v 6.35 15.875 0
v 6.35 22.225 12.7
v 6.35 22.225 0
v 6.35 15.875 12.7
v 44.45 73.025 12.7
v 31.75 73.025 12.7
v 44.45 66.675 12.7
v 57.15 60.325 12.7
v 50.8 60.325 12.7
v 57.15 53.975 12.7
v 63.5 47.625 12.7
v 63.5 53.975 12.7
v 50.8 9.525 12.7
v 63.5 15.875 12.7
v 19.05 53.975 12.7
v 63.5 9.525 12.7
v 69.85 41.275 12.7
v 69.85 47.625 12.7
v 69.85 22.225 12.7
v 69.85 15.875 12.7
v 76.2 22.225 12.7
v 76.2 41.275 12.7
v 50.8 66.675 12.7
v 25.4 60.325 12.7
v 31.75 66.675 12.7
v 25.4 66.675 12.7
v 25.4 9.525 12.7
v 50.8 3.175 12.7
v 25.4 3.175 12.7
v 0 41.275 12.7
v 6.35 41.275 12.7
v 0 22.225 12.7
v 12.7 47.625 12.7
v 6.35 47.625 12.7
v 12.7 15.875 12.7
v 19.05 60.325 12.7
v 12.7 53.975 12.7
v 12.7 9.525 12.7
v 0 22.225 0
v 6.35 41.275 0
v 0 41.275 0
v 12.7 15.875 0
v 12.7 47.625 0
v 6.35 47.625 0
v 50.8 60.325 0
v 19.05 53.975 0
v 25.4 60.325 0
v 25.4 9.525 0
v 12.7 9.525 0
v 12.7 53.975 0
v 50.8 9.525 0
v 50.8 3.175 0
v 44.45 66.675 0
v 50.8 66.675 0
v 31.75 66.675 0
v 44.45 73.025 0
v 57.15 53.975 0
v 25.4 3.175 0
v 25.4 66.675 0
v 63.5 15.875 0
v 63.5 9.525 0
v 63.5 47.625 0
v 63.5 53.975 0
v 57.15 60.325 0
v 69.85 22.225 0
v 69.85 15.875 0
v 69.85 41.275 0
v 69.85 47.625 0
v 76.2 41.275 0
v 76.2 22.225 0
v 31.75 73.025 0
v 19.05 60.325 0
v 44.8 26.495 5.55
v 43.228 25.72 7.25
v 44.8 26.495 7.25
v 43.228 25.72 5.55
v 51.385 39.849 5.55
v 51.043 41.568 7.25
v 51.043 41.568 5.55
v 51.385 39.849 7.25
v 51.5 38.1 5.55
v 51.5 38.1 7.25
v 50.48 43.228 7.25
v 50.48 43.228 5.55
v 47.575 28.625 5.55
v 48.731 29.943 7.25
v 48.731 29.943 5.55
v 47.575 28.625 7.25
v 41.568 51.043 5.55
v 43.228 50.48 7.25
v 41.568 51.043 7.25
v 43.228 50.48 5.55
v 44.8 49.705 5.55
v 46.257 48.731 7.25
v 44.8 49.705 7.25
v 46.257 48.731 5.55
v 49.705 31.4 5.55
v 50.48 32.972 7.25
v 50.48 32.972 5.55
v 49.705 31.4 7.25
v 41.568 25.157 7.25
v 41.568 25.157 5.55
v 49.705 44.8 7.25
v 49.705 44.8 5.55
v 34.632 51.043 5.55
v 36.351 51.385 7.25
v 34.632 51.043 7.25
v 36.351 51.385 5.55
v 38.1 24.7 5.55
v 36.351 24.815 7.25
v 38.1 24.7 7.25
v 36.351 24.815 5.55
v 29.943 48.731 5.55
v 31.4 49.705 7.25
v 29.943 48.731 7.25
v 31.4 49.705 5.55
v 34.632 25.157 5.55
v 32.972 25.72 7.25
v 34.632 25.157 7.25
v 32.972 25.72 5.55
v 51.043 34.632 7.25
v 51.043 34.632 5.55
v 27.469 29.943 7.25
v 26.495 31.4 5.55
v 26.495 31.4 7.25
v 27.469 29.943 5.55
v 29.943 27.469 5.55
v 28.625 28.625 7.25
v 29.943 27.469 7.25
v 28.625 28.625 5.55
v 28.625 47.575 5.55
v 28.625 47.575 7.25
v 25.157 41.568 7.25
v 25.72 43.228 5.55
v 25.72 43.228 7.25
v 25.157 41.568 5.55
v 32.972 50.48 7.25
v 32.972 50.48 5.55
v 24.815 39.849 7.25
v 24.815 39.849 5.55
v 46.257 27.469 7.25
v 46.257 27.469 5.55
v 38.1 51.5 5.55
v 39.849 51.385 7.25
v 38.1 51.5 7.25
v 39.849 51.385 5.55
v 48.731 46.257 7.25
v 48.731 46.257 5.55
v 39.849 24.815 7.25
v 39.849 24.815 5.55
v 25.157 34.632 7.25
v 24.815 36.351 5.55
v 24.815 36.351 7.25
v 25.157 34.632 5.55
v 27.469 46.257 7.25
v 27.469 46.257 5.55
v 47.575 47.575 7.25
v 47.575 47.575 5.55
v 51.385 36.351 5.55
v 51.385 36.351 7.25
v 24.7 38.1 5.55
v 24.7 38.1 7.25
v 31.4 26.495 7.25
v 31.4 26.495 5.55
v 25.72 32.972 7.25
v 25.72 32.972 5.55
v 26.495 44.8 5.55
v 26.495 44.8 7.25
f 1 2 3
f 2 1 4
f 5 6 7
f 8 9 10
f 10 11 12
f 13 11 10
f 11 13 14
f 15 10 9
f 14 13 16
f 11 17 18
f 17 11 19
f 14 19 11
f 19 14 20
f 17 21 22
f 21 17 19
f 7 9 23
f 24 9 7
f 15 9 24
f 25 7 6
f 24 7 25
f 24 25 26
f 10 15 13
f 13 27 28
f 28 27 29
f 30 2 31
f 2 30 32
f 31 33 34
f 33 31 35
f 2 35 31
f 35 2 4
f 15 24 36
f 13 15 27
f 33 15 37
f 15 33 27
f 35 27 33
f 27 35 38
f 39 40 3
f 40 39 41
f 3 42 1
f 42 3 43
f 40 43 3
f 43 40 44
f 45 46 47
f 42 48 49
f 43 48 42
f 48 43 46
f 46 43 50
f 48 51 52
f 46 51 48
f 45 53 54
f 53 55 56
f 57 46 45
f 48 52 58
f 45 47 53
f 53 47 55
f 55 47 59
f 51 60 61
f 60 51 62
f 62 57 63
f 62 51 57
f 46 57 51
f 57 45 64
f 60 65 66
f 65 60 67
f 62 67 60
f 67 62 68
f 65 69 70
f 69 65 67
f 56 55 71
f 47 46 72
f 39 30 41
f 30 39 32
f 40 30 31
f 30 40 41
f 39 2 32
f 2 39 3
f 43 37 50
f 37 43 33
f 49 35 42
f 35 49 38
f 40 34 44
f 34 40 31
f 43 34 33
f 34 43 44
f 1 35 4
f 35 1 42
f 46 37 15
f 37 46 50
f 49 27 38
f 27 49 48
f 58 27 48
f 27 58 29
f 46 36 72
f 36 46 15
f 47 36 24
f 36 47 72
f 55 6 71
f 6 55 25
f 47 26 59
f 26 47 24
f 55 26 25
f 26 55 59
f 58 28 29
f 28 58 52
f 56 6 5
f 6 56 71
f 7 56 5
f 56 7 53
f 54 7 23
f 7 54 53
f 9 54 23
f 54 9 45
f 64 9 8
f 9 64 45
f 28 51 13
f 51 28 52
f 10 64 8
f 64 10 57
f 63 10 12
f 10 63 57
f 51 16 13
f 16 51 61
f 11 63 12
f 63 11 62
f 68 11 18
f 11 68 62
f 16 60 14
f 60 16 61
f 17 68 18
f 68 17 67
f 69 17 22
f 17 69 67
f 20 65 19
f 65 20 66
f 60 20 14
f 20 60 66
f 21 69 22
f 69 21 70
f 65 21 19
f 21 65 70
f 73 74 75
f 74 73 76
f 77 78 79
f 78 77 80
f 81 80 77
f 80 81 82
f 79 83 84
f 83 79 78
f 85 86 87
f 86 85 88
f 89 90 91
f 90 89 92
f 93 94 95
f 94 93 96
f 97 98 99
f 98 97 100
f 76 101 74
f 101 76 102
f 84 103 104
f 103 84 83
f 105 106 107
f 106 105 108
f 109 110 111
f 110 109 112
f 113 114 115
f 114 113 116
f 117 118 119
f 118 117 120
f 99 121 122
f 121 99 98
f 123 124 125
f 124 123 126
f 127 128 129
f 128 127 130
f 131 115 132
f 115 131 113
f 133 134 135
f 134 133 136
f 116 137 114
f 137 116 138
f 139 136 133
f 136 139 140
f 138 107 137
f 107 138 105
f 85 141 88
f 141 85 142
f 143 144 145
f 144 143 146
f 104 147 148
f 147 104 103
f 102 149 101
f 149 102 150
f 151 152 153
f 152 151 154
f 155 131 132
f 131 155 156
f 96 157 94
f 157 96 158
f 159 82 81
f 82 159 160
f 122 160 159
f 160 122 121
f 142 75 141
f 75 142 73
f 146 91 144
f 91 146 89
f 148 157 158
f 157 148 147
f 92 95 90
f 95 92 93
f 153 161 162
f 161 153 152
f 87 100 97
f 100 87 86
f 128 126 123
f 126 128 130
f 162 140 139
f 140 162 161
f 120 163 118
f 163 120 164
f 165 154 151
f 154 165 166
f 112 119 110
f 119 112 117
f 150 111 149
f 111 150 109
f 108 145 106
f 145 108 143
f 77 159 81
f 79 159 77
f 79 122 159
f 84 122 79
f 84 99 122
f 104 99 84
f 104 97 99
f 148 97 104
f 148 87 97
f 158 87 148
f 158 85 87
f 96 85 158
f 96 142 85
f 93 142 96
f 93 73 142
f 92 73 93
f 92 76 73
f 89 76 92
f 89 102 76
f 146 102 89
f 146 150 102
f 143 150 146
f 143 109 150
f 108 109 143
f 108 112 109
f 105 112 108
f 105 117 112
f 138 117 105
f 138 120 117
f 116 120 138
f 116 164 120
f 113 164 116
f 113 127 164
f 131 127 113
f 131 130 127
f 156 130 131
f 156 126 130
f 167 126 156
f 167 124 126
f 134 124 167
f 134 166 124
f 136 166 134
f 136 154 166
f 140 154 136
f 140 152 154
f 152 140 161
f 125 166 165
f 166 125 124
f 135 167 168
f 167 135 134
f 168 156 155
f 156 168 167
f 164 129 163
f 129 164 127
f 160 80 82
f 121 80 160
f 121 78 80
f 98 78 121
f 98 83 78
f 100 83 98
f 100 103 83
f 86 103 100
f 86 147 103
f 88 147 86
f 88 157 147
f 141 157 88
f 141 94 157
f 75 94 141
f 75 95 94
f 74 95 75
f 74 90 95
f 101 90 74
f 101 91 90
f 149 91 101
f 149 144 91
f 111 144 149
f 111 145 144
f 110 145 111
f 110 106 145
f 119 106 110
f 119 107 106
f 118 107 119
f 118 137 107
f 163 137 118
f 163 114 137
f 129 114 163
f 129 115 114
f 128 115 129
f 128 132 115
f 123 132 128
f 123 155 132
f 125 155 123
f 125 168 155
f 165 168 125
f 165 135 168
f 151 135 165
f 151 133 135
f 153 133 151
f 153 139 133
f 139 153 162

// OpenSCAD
// redstone — Minecraft Item Shape 3D Model
// Auto-generated from minecraft/textures/item/redstone.png
//
// Open in OpenSCAD → F5 preview → F6 render → F7 export STL

// ============================================================
// PARAMETERS
// ============================================================

GRID_SIZE_IN    = 3.0;           // crafting table slot size
PIXELS          = 12;              // grid divisions (shape-fitted)
PIXEL_MM        = (GRID_SIZE_IN * 25.4) / PIXELS;  // mm per pixel

DEPTH_IN        = 0.5;          // extrusion depth in inches
DEPTH_MM        = DEPTH_IN * 25.4;

// NFC tag (NTAG215 25mm coin)
TAG_DIAMETER    = 26;           // mm — slightly oversized for easy drop-in
TAG_THICKNESS   = 1.2;         // mm
TAG_CLEARANCE   = 0.4;         // mm extra around tag

cavity_d = TAG_DIAMETER + TAG_CLEARANCE * 2;
cavity_h = TAG_THICKNESS + TAG_CLEARANCE;

echo(str("Tag cavity: ", cavity_d, "mm dia × ", cavity_h, "mm deep"));
echo(str("PAUSE AT: ", DEPTH_MM / 2 + cavity_h / 2, "mm to insert tag"));

module tag_cavity() {
    cx = (5.5 + 0.5) * PIXEL_MM;
    cy = (PIXELS - 1 - 5.5 + 0.5) * PIXEL_MM;
    translate([cx, cy, DEPTH_MM / 2 - cavity_h / 2])
        cylinder(d = cavity_d, h = cavity_h + 0.1, $fn = 48);
}

module tag_shelf() {
    cx = (5.5 + 0.5) * PIXEL_MM;
    cy = (PIXELS - 1 - 5.5 + 0.5) * PIXEL_MM;
    translate([cx, cy, DEPTH_MM / 2 - cavity_h / 2 - 1.0])
        cylinder(d = cavity_d + 4, h = 1.0, $fn = 48);
}

echo(str("Pixel size: ", PIXEL_MM, "mm"));
echo(str("Footprint: ", PIXELS * PIXEL_MM, "mm = ", GRID_SIZE_IN, " in"));
echo(str("Depth: ", DEPTH_MM, "mm = ", DEPTH_IN, " in"));

// ============================================================
// PIXEL MAP — 88 opaque pixels
// ============================================================

item_pixels = [
    [0.0,5.5], [0.0,6.5], [0.0,7.5], [1.0,4.5], [1.0,5.5], [1.0,6.5], [1.0,7.5], [1.0,8.5],
    [2.0,3.5], [2.0,4.5], [2.0,5.5], [2.0,6.5], [2.0,7.5], [2.0,8.5], [2.0,9.5], [3.0,2.5],
    [3.0,3.5], [3.0,4.5], [3.0,5.5], [3.0,6.5], [3.0,7.5], [3.0,8.5], [3.0,9.5], [4.0,1.5],
    [4.0,2.5], [4.0,3.5], [4.0,4.5], [4.0,5.5], [4.0,6.5], [4.0,7.5], [4.0,8.5], [4.0,9.5],
    [4.0,10.5], [5.0,0.5], [5.0,1.5], [5.0,2.5], [5.0,3.5], [5.0,4.5], [5.0,5.5], [5.0,6.5],
    [5.0,7.5], [5.0,8.5], [5.0,9.5], [5.0,10.5], [6.0,0.5], [6.0,1.5], [6.0,2.5], [6.0,3.5],
    [6.0,4.5], [6.0,5.5], [6.0,6.5], [6.0,7.5], [6.0,8.5], [6.0,9.5], [6.0,10.5], [7.0,1.5],
    [7.0,2.5], [7.0,3.5], [7.0,4.5], [7.0,5.5], [7.0,6.5], [7.0,7.5], [7.0,8.5], [7.0,9.5],
    [7.0,10.5], [8.0,2.5], [8.0,3.5], [8.0,4.5], [8.0,5.5], [8.0,6.5], [8.0,7.5], [8.0,8.5],
    [8.0,9.5], [9.0,3.5], [9.0,4.5], [9.0,5.5], [9.0,6.5], [9.0,7.5], [9.0,8.5], [9.0,9.5],
    [10.0,4.5], [10.0,5.5], [10.0,6.5], [10.0,7.5], [10.0,8.5], [11.0,5.5], [11.0,6.5], [11.0,7.5]
];

// ============================================================
// MODULES
// ============================================================

module pixel_block(col, row) {
    translate([col * PIXEL_MM, (PIXELS - 1 - row) * PIXEL_MM, 0])
        cube([PIXEL_MM, PIXEL_MM, DEPTH_MM]);
}

module item_shape() {
    for (i = [0 : len(item_pixels) - 1])
        pixel_block(item_pixels[i][0], item_pixels[i][1]);
}

module item_final() {
    difference() {
        union() {
            item_shape();
            intersection() {
                item_shape();
                tag_shelf();
            }
        }
        tag_cavity();
    }
}

item_final();

// Cross-section view (uncomment to see tag cavity):
// difference() {
//     item_final();
//     translate([8 * PIXEL_MM + 50, 0, 0])
//         cube([100, 200, 100]);
// }
